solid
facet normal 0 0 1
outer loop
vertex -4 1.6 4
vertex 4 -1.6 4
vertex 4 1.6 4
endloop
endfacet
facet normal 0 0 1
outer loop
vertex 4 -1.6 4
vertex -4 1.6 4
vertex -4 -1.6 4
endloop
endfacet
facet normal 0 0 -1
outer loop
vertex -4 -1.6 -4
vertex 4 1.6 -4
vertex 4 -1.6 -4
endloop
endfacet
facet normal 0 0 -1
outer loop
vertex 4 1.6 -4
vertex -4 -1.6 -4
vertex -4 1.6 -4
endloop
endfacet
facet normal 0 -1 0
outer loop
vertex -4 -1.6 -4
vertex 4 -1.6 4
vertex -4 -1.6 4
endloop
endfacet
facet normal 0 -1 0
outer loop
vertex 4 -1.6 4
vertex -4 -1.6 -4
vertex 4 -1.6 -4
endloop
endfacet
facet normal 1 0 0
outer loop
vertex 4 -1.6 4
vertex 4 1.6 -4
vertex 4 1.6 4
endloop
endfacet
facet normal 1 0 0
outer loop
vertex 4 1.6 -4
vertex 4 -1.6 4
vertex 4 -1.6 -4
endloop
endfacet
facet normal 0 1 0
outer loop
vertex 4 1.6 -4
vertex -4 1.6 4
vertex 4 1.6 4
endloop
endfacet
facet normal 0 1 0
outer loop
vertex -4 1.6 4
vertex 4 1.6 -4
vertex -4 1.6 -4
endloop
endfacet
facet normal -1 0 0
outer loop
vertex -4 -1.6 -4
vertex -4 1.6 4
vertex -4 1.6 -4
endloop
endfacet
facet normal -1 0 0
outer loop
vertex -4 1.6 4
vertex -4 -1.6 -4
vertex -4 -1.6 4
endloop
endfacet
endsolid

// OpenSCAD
size=32; //block=32 //item=8


cube([size*0.25,size*0.1,size*0.25],center=true);
